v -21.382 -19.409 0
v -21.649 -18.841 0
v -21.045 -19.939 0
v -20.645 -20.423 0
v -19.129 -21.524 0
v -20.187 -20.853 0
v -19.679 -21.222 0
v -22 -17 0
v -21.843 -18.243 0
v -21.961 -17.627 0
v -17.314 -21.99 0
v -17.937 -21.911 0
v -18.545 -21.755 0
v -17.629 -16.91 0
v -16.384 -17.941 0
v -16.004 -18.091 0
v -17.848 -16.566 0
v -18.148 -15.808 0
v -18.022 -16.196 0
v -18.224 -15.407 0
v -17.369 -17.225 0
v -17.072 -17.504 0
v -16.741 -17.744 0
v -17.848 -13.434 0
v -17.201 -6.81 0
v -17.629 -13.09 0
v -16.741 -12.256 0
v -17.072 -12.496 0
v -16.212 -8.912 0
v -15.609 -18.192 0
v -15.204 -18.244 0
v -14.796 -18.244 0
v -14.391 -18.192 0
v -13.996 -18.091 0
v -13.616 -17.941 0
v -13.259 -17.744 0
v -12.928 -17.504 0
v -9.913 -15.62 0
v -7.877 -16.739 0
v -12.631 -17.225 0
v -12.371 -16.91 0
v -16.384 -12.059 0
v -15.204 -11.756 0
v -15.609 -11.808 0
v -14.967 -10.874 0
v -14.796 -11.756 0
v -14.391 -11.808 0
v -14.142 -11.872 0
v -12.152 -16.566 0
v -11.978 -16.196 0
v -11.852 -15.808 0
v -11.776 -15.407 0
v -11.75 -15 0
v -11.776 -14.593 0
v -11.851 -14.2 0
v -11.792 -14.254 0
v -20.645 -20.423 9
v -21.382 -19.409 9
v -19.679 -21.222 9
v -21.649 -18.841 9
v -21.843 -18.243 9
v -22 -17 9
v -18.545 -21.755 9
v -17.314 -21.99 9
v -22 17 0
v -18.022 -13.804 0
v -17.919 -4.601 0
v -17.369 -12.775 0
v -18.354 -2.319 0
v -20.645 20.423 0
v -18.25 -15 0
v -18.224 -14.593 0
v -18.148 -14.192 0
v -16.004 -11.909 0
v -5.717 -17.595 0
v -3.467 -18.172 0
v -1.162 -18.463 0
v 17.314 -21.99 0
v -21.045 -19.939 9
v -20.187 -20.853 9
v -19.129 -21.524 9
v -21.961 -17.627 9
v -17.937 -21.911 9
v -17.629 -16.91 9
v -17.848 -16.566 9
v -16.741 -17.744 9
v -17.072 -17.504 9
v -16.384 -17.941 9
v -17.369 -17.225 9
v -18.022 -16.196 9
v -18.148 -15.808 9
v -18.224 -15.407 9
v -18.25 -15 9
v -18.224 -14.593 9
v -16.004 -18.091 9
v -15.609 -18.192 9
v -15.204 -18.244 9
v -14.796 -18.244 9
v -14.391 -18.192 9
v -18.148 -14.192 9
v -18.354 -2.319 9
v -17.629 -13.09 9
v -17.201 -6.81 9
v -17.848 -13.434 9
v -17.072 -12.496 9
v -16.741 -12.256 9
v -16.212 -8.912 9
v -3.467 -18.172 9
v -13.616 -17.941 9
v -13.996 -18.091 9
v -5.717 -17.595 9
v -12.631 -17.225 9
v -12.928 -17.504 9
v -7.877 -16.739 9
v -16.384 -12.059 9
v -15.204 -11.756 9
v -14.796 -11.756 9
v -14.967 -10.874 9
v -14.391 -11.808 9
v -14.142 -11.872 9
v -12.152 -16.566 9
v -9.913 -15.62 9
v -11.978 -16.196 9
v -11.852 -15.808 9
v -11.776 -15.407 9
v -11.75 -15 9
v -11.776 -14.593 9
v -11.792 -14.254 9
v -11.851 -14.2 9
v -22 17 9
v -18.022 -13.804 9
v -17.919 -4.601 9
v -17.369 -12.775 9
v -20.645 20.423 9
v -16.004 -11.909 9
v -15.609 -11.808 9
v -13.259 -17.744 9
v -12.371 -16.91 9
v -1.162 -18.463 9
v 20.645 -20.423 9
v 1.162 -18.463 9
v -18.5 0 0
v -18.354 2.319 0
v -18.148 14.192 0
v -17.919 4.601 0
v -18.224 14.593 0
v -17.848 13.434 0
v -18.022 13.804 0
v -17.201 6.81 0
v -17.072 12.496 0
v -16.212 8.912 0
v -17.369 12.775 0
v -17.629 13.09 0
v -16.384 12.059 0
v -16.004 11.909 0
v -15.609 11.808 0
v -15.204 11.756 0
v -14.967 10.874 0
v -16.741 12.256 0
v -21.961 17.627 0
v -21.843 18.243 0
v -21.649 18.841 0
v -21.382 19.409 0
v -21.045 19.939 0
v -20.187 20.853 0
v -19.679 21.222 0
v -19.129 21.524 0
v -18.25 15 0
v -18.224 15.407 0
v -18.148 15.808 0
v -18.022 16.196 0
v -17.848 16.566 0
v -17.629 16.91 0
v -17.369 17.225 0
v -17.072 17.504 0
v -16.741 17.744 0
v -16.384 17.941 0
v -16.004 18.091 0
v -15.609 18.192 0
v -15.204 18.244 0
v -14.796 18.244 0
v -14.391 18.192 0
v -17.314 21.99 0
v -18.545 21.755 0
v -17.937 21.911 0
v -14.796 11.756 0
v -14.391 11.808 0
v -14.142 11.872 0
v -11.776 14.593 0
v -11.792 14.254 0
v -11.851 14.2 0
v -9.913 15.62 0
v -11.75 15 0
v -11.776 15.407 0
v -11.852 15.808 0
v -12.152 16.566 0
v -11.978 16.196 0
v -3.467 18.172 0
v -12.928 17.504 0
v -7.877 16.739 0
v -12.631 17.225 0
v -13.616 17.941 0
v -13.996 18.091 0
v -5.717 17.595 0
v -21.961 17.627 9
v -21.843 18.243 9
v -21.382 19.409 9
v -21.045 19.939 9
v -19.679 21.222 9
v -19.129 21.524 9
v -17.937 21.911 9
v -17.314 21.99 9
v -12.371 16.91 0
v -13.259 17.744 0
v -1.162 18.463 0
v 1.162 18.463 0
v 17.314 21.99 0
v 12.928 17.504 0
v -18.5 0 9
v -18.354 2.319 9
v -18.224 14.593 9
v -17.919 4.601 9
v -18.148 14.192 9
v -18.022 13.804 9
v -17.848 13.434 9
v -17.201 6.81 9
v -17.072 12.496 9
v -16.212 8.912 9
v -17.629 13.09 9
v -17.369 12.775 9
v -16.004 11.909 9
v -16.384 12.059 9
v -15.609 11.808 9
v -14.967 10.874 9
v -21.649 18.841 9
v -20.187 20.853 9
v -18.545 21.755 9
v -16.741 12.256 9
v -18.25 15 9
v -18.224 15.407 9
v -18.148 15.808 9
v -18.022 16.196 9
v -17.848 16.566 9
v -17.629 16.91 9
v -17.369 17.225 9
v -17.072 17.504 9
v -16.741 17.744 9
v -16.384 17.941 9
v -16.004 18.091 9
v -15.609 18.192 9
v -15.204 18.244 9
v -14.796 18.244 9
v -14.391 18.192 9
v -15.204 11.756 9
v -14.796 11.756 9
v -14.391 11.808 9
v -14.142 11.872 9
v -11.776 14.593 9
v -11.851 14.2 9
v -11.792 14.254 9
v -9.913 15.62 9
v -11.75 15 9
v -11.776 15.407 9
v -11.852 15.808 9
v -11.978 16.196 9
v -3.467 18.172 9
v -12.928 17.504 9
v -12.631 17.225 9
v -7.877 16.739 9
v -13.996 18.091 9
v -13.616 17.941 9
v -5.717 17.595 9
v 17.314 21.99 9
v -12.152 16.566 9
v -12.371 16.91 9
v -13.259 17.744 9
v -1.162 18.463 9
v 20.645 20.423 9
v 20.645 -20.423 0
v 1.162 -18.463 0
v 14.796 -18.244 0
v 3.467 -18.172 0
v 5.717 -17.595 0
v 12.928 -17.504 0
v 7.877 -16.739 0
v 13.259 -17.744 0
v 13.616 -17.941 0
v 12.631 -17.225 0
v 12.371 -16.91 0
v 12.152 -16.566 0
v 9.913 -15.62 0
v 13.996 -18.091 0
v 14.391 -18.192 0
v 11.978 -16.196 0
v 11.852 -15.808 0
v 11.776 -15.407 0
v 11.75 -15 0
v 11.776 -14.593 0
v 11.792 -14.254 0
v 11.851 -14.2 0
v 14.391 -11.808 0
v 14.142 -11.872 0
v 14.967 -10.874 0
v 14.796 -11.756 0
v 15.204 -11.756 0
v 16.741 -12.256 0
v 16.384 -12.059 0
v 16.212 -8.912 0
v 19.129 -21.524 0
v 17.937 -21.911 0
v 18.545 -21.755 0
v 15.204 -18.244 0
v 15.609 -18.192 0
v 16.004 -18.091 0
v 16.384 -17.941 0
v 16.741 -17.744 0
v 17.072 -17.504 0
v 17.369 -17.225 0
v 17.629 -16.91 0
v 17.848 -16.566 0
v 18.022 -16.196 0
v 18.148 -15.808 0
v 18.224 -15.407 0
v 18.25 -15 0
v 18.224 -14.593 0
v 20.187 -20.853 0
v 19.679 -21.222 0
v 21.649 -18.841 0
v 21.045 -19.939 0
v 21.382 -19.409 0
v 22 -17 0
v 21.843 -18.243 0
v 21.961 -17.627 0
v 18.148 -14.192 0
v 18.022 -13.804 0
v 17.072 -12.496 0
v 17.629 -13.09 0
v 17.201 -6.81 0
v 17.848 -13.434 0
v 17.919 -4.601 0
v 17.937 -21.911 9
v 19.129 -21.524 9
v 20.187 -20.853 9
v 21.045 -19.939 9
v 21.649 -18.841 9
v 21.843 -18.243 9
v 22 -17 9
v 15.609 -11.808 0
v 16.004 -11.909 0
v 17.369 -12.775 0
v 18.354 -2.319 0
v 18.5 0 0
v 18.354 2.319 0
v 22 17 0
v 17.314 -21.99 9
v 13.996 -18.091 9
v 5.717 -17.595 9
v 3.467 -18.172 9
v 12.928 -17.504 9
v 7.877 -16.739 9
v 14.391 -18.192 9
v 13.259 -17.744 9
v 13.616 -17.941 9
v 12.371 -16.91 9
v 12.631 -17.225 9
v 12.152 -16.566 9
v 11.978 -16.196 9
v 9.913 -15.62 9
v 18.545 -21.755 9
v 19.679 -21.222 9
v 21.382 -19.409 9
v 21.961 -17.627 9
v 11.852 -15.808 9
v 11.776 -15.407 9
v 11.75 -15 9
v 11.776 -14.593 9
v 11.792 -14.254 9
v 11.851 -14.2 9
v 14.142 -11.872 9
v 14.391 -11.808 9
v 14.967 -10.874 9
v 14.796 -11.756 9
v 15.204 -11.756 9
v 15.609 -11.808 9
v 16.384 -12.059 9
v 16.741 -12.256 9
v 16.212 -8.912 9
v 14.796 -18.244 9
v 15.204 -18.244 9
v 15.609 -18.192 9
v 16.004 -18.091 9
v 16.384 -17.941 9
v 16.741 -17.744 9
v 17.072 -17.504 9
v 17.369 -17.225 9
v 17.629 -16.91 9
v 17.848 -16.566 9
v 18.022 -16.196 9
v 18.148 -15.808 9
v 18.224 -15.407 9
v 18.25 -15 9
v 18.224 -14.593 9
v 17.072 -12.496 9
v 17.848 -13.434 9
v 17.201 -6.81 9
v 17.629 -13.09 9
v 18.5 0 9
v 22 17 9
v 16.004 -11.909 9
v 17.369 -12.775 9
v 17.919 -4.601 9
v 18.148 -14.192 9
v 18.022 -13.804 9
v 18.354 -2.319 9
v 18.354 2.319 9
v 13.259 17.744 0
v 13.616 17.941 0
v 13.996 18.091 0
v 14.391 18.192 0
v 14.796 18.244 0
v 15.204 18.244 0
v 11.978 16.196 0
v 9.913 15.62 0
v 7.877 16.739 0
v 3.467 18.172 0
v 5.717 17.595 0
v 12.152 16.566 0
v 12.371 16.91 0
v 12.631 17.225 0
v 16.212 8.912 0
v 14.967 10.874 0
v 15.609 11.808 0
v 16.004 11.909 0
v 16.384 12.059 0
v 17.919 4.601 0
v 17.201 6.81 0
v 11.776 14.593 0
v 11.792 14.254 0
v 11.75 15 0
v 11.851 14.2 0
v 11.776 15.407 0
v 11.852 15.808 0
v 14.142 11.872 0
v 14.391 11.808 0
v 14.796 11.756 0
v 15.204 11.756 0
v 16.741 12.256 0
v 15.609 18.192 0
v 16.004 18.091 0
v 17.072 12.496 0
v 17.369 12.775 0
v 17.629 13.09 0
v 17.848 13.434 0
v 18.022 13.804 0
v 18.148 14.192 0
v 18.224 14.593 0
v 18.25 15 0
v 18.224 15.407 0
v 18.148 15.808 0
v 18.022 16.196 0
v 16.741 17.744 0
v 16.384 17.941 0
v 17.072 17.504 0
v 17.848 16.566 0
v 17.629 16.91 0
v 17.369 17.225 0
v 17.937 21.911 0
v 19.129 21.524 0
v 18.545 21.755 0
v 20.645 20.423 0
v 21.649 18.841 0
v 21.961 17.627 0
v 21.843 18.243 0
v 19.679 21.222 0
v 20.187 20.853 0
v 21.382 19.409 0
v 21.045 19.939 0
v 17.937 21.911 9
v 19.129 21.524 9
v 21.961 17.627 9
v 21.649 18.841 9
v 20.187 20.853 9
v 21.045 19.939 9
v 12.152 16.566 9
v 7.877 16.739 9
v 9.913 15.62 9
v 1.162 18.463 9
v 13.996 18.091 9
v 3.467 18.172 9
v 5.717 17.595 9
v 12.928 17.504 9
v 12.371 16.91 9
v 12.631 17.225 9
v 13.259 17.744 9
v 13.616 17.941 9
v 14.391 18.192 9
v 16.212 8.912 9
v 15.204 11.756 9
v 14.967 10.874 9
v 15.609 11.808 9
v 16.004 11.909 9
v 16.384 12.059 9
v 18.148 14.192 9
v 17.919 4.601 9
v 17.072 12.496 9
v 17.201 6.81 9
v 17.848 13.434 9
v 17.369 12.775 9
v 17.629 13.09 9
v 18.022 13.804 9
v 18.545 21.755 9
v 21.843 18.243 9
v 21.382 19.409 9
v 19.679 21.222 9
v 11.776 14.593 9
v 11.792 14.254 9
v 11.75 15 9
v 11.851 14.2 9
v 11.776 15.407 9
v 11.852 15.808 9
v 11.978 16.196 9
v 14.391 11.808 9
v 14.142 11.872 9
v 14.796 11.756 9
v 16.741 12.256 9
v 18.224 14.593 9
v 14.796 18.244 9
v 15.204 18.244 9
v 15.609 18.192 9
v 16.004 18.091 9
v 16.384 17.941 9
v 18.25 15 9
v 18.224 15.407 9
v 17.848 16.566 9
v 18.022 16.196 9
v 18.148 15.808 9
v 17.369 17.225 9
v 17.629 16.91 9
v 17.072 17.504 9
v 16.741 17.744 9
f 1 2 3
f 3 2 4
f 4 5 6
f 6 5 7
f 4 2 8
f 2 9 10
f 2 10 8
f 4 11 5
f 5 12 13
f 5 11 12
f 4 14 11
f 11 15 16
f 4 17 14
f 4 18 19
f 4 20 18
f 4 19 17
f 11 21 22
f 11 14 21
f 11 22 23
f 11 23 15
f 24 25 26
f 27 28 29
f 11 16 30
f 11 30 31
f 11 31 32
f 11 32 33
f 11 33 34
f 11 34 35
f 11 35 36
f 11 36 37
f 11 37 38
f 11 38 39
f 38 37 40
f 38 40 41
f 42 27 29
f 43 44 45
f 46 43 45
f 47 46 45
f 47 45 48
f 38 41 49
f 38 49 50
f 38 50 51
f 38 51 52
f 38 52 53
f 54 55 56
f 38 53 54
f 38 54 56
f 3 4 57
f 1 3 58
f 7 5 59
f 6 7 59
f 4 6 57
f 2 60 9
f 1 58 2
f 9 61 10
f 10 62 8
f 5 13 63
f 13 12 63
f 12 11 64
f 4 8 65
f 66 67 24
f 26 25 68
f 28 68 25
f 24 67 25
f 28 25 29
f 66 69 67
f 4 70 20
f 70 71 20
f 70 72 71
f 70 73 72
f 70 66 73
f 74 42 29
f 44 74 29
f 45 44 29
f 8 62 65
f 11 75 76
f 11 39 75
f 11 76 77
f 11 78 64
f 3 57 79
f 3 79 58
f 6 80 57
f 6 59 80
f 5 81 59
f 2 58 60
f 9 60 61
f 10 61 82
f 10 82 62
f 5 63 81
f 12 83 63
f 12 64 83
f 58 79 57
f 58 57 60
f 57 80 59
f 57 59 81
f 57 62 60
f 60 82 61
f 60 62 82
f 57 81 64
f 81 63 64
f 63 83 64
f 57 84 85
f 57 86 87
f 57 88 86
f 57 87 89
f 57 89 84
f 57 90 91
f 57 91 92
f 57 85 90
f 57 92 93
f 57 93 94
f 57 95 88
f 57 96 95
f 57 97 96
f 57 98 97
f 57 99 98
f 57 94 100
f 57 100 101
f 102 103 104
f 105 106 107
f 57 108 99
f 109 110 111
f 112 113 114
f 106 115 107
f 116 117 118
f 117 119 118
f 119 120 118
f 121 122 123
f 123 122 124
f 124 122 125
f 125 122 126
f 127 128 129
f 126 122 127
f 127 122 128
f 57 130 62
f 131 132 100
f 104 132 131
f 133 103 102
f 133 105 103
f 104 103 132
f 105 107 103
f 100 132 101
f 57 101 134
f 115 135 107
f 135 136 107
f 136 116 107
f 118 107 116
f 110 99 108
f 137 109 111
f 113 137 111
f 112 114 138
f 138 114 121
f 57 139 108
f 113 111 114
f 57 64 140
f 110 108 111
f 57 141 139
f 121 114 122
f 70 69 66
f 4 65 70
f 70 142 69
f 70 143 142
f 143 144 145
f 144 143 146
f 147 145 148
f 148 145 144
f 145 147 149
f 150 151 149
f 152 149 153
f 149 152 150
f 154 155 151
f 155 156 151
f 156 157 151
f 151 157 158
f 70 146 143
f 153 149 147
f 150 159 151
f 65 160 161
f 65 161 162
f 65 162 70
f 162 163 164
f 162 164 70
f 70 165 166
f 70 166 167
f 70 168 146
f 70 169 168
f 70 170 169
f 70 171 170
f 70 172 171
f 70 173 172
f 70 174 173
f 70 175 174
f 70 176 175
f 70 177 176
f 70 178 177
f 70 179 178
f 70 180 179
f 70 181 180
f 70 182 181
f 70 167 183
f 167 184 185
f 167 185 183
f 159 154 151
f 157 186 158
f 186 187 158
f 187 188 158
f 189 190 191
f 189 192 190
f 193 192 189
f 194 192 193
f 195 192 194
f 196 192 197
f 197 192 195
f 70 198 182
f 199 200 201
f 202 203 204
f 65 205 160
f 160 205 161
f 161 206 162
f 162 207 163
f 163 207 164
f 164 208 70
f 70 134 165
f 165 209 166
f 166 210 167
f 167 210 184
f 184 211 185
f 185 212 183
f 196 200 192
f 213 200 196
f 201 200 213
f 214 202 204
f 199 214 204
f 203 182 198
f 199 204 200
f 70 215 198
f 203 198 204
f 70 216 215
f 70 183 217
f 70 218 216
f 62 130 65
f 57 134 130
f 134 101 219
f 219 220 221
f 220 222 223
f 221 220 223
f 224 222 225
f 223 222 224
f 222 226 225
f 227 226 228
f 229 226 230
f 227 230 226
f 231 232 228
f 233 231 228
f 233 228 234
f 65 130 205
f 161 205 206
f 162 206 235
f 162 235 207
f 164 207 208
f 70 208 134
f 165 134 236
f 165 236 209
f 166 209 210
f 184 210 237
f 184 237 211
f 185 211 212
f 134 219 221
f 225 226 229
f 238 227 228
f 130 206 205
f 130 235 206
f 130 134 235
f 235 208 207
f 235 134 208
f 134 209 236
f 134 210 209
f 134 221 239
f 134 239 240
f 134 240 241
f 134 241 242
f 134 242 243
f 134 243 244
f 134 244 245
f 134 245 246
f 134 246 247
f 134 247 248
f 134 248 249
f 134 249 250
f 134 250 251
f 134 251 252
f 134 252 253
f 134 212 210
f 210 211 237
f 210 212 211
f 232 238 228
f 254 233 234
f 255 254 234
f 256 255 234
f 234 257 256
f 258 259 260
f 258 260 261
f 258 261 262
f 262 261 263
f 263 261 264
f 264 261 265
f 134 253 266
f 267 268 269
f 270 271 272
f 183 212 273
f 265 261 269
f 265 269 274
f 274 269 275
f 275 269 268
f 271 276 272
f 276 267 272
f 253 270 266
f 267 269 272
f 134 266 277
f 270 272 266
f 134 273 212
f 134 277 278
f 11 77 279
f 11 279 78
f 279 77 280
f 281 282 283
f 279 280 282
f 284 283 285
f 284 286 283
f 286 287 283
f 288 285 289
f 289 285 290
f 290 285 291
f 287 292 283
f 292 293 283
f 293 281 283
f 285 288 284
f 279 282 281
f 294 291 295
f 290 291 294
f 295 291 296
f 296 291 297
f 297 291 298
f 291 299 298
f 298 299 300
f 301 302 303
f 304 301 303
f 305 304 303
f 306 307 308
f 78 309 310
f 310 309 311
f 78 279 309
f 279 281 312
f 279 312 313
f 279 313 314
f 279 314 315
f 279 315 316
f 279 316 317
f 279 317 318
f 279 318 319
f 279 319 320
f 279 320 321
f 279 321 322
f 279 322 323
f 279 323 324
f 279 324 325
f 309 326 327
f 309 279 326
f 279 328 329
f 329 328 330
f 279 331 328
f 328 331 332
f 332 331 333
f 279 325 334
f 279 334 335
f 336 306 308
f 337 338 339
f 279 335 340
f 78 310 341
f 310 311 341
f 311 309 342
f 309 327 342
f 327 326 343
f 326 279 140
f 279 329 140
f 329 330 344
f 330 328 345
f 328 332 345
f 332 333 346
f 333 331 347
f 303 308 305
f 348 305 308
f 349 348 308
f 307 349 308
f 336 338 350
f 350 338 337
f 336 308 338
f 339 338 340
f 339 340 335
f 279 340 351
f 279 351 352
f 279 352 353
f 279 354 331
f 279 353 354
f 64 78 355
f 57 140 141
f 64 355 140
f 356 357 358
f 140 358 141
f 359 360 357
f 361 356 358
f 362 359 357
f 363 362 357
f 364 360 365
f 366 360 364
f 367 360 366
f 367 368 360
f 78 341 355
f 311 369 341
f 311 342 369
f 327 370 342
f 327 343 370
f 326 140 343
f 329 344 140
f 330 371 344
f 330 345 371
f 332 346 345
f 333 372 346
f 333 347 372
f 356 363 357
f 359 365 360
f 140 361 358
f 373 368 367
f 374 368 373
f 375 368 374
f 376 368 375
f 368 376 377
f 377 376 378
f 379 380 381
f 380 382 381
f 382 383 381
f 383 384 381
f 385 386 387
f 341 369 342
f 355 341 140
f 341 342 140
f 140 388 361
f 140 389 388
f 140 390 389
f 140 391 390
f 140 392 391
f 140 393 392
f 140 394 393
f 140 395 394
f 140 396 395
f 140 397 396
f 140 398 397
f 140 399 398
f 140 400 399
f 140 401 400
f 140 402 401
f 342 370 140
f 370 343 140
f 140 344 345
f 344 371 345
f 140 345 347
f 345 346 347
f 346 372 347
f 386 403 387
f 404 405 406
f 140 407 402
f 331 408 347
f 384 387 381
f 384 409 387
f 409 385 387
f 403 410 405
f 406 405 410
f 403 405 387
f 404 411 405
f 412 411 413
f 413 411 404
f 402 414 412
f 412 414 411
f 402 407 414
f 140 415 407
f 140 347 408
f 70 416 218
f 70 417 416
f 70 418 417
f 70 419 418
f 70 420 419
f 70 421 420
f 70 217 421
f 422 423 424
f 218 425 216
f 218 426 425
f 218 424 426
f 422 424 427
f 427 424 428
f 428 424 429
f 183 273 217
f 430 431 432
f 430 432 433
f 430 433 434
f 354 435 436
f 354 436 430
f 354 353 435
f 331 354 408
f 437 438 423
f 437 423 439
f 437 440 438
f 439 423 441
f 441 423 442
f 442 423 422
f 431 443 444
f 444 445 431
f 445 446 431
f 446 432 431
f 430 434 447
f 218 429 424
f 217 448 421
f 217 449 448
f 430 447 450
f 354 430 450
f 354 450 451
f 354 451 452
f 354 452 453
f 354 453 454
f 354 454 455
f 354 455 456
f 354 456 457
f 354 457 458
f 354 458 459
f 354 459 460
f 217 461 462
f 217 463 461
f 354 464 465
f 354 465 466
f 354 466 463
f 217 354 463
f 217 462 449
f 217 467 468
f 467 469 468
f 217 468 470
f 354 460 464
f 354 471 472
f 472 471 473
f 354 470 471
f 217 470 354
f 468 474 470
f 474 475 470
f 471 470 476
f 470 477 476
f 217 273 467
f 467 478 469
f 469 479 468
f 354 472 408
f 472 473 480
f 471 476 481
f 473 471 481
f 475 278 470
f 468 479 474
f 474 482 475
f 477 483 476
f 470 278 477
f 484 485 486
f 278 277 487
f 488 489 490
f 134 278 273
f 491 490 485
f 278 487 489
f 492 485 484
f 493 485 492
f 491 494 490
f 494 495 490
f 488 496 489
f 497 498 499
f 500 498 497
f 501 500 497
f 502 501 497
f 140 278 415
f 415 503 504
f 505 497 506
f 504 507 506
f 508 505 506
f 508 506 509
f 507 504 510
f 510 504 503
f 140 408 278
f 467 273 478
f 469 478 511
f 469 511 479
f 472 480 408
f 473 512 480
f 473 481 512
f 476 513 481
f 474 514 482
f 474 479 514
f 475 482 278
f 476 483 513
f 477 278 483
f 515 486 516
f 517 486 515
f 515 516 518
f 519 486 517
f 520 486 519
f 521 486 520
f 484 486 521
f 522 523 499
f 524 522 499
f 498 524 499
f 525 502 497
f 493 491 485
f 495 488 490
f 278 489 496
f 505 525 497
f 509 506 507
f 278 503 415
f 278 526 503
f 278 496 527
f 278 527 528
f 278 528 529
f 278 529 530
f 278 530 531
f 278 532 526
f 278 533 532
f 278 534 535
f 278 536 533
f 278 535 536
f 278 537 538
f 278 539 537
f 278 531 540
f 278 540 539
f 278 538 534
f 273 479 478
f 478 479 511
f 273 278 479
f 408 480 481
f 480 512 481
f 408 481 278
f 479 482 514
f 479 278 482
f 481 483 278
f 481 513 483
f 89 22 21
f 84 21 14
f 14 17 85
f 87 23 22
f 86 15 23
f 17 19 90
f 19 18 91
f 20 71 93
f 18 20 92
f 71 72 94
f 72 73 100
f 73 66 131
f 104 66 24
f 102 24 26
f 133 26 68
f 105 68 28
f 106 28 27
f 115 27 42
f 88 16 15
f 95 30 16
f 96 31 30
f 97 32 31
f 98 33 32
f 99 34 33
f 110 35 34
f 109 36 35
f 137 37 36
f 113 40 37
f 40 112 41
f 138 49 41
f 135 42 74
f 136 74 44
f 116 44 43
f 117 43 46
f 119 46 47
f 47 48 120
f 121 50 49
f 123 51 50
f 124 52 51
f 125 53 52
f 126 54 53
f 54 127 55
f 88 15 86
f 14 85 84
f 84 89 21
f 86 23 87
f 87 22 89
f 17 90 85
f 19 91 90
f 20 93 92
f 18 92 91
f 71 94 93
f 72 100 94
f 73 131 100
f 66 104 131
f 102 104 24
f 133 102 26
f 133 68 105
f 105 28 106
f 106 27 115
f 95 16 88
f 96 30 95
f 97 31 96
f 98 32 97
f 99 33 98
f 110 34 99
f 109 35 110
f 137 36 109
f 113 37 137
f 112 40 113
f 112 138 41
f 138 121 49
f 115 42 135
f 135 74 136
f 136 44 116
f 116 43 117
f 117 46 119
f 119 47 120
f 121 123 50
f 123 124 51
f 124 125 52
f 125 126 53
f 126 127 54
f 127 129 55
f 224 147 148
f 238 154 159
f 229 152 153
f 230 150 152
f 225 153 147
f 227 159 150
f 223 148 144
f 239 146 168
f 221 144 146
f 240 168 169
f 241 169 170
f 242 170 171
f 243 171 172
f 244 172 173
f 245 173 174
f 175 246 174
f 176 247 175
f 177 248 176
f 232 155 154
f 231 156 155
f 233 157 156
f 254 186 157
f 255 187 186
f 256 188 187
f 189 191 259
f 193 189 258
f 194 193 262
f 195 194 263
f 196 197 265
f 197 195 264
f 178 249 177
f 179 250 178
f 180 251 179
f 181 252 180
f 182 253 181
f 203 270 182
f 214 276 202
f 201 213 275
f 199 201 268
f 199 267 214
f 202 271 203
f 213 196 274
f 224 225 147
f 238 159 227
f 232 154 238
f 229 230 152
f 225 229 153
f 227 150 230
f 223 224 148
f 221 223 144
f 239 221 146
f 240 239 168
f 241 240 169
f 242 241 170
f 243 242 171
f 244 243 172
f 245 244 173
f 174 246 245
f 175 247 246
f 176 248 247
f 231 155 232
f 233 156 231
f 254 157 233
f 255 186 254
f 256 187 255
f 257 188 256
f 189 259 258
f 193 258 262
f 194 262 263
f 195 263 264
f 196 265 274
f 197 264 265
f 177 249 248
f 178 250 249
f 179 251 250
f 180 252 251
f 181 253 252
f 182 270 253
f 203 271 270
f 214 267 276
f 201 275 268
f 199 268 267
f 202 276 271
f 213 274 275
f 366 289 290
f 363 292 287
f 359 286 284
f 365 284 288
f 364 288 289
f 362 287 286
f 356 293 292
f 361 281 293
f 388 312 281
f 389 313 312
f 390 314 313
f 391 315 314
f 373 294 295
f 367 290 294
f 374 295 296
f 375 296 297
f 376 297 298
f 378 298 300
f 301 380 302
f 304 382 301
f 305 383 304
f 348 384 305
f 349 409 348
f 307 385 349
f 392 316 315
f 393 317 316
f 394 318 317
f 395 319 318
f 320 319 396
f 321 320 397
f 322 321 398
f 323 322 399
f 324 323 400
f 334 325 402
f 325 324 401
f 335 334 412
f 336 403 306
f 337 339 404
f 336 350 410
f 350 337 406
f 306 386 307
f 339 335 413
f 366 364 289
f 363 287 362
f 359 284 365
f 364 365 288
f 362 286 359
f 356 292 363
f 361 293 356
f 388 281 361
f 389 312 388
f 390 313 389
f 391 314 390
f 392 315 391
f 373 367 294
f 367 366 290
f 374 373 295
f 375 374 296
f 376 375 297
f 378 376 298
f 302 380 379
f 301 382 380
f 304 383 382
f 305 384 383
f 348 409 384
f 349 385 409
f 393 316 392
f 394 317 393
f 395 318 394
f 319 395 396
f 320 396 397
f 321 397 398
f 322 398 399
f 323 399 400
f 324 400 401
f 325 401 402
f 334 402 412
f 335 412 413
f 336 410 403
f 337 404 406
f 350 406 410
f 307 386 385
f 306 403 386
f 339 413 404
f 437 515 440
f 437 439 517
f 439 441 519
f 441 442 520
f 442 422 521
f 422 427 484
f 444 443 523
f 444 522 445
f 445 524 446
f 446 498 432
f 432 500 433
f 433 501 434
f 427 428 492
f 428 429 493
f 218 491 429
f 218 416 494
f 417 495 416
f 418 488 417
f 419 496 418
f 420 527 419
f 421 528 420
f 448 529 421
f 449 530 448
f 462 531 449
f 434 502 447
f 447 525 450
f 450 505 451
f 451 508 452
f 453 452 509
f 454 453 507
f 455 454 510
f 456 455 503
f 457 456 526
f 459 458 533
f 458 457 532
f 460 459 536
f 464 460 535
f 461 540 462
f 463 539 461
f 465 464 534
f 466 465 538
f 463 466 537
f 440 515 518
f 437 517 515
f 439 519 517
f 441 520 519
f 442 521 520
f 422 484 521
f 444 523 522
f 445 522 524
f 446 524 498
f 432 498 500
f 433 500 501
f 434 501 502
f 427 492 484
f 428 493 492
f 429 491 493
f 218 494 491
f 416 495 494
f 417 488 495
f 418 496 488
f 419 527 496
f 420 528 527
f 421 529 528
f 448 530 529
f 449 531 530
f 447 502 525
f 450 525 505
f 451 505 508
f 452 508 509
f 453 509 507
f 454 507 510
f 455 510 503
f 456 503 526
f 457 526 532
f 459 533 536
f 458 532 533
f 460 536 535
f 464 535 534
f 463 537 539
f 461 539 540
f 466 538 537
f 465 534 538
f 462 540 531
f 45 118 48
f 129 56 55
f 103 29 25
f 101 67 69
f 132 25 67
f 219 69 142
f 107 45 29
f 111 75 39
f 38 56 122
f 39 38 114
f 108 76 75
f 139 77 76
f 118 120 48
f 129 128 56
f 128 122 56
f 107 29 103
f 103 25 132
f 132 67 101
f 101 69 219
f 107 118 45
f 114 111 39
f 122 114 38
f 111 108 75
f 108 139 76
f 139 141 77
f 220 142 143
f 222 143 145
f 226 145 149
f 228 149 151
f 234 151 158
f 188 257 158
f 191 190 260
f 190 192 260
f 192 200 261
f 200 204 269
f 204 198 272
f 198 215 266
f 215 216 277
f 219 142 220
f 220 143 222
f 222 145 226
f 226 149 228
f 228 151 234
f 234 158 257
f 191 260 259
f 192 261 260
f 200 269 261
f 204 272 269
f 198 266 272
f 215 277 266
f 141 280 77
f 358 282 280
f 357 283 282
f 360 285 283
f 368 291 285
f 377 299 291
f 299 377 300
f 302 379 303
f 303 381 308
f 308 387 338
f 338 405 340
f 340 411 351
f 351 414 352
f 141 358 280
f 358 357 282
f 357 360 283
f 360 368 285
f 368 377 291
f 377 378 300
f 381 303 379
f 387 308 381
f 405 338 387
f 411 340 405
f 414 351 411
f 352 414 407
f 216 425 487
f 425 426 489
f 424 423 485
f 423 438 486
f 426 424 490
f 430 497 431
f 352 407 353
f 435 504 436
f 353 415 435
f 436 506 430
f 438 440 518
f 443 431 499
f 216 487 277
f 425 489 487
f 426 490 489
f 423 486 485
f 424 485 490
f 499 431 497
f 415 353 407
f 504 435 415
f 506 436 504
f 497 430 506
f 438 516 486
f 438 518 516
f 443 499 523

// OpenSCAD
$fn = 50;

difference() {
	union() {
		hull() {
			translate(v = [-17.0, 17.0, 0]) {
				cylinder(h = 9, r = 5);
			}
			translate(v = [17.0, 17.0, 0]) {
				cylinder(h = 9, r = 5);
			}
			translate(v = [-17.0, -17.0, 0]) {
				cylinder(h = 9, r = 5);
			}
			translate(v = [17.0, -17.0, 0]) {
				cylinder(h = 9, r = 5);
			}
		}
	}
	union() {
		translate(v = [-15.0, -15.0, -100.0]) {
			cylinder(h = 200, r = 3.25);
		}
		translate(v = [-15.0, 15.0, -100.0]) {
			cylinder(h = 200, r = 3.25);
		}
		translate(v = [15.0, -15.0, -100.0]) {
			cylinder(h = 200, r = 3.25);
		}
		translate(v = [15.0, 15.0, -100.0]) {
			cylinder(h = 200, r = 3.25);
		}
		translate(v = [-15.0, -15.0, -100.0]) {
			cylinder(h = 200, r = 1.8);
		}
		translate(v = [-15.0, 15.0, -100.0]) {
			cylinder(h = 200, r = 1.8);
		}
		translate(v = [15.0, -15.0, -100.0]) {
			cylinder(h = 200, r = 1.8);
		}
		translate(v = [15.0, 15.0, -100.0]) {
			cylinder(h = 200, r = 1.8);
		}
		cylinder(h = 9, r = 18.5);
	}
}
